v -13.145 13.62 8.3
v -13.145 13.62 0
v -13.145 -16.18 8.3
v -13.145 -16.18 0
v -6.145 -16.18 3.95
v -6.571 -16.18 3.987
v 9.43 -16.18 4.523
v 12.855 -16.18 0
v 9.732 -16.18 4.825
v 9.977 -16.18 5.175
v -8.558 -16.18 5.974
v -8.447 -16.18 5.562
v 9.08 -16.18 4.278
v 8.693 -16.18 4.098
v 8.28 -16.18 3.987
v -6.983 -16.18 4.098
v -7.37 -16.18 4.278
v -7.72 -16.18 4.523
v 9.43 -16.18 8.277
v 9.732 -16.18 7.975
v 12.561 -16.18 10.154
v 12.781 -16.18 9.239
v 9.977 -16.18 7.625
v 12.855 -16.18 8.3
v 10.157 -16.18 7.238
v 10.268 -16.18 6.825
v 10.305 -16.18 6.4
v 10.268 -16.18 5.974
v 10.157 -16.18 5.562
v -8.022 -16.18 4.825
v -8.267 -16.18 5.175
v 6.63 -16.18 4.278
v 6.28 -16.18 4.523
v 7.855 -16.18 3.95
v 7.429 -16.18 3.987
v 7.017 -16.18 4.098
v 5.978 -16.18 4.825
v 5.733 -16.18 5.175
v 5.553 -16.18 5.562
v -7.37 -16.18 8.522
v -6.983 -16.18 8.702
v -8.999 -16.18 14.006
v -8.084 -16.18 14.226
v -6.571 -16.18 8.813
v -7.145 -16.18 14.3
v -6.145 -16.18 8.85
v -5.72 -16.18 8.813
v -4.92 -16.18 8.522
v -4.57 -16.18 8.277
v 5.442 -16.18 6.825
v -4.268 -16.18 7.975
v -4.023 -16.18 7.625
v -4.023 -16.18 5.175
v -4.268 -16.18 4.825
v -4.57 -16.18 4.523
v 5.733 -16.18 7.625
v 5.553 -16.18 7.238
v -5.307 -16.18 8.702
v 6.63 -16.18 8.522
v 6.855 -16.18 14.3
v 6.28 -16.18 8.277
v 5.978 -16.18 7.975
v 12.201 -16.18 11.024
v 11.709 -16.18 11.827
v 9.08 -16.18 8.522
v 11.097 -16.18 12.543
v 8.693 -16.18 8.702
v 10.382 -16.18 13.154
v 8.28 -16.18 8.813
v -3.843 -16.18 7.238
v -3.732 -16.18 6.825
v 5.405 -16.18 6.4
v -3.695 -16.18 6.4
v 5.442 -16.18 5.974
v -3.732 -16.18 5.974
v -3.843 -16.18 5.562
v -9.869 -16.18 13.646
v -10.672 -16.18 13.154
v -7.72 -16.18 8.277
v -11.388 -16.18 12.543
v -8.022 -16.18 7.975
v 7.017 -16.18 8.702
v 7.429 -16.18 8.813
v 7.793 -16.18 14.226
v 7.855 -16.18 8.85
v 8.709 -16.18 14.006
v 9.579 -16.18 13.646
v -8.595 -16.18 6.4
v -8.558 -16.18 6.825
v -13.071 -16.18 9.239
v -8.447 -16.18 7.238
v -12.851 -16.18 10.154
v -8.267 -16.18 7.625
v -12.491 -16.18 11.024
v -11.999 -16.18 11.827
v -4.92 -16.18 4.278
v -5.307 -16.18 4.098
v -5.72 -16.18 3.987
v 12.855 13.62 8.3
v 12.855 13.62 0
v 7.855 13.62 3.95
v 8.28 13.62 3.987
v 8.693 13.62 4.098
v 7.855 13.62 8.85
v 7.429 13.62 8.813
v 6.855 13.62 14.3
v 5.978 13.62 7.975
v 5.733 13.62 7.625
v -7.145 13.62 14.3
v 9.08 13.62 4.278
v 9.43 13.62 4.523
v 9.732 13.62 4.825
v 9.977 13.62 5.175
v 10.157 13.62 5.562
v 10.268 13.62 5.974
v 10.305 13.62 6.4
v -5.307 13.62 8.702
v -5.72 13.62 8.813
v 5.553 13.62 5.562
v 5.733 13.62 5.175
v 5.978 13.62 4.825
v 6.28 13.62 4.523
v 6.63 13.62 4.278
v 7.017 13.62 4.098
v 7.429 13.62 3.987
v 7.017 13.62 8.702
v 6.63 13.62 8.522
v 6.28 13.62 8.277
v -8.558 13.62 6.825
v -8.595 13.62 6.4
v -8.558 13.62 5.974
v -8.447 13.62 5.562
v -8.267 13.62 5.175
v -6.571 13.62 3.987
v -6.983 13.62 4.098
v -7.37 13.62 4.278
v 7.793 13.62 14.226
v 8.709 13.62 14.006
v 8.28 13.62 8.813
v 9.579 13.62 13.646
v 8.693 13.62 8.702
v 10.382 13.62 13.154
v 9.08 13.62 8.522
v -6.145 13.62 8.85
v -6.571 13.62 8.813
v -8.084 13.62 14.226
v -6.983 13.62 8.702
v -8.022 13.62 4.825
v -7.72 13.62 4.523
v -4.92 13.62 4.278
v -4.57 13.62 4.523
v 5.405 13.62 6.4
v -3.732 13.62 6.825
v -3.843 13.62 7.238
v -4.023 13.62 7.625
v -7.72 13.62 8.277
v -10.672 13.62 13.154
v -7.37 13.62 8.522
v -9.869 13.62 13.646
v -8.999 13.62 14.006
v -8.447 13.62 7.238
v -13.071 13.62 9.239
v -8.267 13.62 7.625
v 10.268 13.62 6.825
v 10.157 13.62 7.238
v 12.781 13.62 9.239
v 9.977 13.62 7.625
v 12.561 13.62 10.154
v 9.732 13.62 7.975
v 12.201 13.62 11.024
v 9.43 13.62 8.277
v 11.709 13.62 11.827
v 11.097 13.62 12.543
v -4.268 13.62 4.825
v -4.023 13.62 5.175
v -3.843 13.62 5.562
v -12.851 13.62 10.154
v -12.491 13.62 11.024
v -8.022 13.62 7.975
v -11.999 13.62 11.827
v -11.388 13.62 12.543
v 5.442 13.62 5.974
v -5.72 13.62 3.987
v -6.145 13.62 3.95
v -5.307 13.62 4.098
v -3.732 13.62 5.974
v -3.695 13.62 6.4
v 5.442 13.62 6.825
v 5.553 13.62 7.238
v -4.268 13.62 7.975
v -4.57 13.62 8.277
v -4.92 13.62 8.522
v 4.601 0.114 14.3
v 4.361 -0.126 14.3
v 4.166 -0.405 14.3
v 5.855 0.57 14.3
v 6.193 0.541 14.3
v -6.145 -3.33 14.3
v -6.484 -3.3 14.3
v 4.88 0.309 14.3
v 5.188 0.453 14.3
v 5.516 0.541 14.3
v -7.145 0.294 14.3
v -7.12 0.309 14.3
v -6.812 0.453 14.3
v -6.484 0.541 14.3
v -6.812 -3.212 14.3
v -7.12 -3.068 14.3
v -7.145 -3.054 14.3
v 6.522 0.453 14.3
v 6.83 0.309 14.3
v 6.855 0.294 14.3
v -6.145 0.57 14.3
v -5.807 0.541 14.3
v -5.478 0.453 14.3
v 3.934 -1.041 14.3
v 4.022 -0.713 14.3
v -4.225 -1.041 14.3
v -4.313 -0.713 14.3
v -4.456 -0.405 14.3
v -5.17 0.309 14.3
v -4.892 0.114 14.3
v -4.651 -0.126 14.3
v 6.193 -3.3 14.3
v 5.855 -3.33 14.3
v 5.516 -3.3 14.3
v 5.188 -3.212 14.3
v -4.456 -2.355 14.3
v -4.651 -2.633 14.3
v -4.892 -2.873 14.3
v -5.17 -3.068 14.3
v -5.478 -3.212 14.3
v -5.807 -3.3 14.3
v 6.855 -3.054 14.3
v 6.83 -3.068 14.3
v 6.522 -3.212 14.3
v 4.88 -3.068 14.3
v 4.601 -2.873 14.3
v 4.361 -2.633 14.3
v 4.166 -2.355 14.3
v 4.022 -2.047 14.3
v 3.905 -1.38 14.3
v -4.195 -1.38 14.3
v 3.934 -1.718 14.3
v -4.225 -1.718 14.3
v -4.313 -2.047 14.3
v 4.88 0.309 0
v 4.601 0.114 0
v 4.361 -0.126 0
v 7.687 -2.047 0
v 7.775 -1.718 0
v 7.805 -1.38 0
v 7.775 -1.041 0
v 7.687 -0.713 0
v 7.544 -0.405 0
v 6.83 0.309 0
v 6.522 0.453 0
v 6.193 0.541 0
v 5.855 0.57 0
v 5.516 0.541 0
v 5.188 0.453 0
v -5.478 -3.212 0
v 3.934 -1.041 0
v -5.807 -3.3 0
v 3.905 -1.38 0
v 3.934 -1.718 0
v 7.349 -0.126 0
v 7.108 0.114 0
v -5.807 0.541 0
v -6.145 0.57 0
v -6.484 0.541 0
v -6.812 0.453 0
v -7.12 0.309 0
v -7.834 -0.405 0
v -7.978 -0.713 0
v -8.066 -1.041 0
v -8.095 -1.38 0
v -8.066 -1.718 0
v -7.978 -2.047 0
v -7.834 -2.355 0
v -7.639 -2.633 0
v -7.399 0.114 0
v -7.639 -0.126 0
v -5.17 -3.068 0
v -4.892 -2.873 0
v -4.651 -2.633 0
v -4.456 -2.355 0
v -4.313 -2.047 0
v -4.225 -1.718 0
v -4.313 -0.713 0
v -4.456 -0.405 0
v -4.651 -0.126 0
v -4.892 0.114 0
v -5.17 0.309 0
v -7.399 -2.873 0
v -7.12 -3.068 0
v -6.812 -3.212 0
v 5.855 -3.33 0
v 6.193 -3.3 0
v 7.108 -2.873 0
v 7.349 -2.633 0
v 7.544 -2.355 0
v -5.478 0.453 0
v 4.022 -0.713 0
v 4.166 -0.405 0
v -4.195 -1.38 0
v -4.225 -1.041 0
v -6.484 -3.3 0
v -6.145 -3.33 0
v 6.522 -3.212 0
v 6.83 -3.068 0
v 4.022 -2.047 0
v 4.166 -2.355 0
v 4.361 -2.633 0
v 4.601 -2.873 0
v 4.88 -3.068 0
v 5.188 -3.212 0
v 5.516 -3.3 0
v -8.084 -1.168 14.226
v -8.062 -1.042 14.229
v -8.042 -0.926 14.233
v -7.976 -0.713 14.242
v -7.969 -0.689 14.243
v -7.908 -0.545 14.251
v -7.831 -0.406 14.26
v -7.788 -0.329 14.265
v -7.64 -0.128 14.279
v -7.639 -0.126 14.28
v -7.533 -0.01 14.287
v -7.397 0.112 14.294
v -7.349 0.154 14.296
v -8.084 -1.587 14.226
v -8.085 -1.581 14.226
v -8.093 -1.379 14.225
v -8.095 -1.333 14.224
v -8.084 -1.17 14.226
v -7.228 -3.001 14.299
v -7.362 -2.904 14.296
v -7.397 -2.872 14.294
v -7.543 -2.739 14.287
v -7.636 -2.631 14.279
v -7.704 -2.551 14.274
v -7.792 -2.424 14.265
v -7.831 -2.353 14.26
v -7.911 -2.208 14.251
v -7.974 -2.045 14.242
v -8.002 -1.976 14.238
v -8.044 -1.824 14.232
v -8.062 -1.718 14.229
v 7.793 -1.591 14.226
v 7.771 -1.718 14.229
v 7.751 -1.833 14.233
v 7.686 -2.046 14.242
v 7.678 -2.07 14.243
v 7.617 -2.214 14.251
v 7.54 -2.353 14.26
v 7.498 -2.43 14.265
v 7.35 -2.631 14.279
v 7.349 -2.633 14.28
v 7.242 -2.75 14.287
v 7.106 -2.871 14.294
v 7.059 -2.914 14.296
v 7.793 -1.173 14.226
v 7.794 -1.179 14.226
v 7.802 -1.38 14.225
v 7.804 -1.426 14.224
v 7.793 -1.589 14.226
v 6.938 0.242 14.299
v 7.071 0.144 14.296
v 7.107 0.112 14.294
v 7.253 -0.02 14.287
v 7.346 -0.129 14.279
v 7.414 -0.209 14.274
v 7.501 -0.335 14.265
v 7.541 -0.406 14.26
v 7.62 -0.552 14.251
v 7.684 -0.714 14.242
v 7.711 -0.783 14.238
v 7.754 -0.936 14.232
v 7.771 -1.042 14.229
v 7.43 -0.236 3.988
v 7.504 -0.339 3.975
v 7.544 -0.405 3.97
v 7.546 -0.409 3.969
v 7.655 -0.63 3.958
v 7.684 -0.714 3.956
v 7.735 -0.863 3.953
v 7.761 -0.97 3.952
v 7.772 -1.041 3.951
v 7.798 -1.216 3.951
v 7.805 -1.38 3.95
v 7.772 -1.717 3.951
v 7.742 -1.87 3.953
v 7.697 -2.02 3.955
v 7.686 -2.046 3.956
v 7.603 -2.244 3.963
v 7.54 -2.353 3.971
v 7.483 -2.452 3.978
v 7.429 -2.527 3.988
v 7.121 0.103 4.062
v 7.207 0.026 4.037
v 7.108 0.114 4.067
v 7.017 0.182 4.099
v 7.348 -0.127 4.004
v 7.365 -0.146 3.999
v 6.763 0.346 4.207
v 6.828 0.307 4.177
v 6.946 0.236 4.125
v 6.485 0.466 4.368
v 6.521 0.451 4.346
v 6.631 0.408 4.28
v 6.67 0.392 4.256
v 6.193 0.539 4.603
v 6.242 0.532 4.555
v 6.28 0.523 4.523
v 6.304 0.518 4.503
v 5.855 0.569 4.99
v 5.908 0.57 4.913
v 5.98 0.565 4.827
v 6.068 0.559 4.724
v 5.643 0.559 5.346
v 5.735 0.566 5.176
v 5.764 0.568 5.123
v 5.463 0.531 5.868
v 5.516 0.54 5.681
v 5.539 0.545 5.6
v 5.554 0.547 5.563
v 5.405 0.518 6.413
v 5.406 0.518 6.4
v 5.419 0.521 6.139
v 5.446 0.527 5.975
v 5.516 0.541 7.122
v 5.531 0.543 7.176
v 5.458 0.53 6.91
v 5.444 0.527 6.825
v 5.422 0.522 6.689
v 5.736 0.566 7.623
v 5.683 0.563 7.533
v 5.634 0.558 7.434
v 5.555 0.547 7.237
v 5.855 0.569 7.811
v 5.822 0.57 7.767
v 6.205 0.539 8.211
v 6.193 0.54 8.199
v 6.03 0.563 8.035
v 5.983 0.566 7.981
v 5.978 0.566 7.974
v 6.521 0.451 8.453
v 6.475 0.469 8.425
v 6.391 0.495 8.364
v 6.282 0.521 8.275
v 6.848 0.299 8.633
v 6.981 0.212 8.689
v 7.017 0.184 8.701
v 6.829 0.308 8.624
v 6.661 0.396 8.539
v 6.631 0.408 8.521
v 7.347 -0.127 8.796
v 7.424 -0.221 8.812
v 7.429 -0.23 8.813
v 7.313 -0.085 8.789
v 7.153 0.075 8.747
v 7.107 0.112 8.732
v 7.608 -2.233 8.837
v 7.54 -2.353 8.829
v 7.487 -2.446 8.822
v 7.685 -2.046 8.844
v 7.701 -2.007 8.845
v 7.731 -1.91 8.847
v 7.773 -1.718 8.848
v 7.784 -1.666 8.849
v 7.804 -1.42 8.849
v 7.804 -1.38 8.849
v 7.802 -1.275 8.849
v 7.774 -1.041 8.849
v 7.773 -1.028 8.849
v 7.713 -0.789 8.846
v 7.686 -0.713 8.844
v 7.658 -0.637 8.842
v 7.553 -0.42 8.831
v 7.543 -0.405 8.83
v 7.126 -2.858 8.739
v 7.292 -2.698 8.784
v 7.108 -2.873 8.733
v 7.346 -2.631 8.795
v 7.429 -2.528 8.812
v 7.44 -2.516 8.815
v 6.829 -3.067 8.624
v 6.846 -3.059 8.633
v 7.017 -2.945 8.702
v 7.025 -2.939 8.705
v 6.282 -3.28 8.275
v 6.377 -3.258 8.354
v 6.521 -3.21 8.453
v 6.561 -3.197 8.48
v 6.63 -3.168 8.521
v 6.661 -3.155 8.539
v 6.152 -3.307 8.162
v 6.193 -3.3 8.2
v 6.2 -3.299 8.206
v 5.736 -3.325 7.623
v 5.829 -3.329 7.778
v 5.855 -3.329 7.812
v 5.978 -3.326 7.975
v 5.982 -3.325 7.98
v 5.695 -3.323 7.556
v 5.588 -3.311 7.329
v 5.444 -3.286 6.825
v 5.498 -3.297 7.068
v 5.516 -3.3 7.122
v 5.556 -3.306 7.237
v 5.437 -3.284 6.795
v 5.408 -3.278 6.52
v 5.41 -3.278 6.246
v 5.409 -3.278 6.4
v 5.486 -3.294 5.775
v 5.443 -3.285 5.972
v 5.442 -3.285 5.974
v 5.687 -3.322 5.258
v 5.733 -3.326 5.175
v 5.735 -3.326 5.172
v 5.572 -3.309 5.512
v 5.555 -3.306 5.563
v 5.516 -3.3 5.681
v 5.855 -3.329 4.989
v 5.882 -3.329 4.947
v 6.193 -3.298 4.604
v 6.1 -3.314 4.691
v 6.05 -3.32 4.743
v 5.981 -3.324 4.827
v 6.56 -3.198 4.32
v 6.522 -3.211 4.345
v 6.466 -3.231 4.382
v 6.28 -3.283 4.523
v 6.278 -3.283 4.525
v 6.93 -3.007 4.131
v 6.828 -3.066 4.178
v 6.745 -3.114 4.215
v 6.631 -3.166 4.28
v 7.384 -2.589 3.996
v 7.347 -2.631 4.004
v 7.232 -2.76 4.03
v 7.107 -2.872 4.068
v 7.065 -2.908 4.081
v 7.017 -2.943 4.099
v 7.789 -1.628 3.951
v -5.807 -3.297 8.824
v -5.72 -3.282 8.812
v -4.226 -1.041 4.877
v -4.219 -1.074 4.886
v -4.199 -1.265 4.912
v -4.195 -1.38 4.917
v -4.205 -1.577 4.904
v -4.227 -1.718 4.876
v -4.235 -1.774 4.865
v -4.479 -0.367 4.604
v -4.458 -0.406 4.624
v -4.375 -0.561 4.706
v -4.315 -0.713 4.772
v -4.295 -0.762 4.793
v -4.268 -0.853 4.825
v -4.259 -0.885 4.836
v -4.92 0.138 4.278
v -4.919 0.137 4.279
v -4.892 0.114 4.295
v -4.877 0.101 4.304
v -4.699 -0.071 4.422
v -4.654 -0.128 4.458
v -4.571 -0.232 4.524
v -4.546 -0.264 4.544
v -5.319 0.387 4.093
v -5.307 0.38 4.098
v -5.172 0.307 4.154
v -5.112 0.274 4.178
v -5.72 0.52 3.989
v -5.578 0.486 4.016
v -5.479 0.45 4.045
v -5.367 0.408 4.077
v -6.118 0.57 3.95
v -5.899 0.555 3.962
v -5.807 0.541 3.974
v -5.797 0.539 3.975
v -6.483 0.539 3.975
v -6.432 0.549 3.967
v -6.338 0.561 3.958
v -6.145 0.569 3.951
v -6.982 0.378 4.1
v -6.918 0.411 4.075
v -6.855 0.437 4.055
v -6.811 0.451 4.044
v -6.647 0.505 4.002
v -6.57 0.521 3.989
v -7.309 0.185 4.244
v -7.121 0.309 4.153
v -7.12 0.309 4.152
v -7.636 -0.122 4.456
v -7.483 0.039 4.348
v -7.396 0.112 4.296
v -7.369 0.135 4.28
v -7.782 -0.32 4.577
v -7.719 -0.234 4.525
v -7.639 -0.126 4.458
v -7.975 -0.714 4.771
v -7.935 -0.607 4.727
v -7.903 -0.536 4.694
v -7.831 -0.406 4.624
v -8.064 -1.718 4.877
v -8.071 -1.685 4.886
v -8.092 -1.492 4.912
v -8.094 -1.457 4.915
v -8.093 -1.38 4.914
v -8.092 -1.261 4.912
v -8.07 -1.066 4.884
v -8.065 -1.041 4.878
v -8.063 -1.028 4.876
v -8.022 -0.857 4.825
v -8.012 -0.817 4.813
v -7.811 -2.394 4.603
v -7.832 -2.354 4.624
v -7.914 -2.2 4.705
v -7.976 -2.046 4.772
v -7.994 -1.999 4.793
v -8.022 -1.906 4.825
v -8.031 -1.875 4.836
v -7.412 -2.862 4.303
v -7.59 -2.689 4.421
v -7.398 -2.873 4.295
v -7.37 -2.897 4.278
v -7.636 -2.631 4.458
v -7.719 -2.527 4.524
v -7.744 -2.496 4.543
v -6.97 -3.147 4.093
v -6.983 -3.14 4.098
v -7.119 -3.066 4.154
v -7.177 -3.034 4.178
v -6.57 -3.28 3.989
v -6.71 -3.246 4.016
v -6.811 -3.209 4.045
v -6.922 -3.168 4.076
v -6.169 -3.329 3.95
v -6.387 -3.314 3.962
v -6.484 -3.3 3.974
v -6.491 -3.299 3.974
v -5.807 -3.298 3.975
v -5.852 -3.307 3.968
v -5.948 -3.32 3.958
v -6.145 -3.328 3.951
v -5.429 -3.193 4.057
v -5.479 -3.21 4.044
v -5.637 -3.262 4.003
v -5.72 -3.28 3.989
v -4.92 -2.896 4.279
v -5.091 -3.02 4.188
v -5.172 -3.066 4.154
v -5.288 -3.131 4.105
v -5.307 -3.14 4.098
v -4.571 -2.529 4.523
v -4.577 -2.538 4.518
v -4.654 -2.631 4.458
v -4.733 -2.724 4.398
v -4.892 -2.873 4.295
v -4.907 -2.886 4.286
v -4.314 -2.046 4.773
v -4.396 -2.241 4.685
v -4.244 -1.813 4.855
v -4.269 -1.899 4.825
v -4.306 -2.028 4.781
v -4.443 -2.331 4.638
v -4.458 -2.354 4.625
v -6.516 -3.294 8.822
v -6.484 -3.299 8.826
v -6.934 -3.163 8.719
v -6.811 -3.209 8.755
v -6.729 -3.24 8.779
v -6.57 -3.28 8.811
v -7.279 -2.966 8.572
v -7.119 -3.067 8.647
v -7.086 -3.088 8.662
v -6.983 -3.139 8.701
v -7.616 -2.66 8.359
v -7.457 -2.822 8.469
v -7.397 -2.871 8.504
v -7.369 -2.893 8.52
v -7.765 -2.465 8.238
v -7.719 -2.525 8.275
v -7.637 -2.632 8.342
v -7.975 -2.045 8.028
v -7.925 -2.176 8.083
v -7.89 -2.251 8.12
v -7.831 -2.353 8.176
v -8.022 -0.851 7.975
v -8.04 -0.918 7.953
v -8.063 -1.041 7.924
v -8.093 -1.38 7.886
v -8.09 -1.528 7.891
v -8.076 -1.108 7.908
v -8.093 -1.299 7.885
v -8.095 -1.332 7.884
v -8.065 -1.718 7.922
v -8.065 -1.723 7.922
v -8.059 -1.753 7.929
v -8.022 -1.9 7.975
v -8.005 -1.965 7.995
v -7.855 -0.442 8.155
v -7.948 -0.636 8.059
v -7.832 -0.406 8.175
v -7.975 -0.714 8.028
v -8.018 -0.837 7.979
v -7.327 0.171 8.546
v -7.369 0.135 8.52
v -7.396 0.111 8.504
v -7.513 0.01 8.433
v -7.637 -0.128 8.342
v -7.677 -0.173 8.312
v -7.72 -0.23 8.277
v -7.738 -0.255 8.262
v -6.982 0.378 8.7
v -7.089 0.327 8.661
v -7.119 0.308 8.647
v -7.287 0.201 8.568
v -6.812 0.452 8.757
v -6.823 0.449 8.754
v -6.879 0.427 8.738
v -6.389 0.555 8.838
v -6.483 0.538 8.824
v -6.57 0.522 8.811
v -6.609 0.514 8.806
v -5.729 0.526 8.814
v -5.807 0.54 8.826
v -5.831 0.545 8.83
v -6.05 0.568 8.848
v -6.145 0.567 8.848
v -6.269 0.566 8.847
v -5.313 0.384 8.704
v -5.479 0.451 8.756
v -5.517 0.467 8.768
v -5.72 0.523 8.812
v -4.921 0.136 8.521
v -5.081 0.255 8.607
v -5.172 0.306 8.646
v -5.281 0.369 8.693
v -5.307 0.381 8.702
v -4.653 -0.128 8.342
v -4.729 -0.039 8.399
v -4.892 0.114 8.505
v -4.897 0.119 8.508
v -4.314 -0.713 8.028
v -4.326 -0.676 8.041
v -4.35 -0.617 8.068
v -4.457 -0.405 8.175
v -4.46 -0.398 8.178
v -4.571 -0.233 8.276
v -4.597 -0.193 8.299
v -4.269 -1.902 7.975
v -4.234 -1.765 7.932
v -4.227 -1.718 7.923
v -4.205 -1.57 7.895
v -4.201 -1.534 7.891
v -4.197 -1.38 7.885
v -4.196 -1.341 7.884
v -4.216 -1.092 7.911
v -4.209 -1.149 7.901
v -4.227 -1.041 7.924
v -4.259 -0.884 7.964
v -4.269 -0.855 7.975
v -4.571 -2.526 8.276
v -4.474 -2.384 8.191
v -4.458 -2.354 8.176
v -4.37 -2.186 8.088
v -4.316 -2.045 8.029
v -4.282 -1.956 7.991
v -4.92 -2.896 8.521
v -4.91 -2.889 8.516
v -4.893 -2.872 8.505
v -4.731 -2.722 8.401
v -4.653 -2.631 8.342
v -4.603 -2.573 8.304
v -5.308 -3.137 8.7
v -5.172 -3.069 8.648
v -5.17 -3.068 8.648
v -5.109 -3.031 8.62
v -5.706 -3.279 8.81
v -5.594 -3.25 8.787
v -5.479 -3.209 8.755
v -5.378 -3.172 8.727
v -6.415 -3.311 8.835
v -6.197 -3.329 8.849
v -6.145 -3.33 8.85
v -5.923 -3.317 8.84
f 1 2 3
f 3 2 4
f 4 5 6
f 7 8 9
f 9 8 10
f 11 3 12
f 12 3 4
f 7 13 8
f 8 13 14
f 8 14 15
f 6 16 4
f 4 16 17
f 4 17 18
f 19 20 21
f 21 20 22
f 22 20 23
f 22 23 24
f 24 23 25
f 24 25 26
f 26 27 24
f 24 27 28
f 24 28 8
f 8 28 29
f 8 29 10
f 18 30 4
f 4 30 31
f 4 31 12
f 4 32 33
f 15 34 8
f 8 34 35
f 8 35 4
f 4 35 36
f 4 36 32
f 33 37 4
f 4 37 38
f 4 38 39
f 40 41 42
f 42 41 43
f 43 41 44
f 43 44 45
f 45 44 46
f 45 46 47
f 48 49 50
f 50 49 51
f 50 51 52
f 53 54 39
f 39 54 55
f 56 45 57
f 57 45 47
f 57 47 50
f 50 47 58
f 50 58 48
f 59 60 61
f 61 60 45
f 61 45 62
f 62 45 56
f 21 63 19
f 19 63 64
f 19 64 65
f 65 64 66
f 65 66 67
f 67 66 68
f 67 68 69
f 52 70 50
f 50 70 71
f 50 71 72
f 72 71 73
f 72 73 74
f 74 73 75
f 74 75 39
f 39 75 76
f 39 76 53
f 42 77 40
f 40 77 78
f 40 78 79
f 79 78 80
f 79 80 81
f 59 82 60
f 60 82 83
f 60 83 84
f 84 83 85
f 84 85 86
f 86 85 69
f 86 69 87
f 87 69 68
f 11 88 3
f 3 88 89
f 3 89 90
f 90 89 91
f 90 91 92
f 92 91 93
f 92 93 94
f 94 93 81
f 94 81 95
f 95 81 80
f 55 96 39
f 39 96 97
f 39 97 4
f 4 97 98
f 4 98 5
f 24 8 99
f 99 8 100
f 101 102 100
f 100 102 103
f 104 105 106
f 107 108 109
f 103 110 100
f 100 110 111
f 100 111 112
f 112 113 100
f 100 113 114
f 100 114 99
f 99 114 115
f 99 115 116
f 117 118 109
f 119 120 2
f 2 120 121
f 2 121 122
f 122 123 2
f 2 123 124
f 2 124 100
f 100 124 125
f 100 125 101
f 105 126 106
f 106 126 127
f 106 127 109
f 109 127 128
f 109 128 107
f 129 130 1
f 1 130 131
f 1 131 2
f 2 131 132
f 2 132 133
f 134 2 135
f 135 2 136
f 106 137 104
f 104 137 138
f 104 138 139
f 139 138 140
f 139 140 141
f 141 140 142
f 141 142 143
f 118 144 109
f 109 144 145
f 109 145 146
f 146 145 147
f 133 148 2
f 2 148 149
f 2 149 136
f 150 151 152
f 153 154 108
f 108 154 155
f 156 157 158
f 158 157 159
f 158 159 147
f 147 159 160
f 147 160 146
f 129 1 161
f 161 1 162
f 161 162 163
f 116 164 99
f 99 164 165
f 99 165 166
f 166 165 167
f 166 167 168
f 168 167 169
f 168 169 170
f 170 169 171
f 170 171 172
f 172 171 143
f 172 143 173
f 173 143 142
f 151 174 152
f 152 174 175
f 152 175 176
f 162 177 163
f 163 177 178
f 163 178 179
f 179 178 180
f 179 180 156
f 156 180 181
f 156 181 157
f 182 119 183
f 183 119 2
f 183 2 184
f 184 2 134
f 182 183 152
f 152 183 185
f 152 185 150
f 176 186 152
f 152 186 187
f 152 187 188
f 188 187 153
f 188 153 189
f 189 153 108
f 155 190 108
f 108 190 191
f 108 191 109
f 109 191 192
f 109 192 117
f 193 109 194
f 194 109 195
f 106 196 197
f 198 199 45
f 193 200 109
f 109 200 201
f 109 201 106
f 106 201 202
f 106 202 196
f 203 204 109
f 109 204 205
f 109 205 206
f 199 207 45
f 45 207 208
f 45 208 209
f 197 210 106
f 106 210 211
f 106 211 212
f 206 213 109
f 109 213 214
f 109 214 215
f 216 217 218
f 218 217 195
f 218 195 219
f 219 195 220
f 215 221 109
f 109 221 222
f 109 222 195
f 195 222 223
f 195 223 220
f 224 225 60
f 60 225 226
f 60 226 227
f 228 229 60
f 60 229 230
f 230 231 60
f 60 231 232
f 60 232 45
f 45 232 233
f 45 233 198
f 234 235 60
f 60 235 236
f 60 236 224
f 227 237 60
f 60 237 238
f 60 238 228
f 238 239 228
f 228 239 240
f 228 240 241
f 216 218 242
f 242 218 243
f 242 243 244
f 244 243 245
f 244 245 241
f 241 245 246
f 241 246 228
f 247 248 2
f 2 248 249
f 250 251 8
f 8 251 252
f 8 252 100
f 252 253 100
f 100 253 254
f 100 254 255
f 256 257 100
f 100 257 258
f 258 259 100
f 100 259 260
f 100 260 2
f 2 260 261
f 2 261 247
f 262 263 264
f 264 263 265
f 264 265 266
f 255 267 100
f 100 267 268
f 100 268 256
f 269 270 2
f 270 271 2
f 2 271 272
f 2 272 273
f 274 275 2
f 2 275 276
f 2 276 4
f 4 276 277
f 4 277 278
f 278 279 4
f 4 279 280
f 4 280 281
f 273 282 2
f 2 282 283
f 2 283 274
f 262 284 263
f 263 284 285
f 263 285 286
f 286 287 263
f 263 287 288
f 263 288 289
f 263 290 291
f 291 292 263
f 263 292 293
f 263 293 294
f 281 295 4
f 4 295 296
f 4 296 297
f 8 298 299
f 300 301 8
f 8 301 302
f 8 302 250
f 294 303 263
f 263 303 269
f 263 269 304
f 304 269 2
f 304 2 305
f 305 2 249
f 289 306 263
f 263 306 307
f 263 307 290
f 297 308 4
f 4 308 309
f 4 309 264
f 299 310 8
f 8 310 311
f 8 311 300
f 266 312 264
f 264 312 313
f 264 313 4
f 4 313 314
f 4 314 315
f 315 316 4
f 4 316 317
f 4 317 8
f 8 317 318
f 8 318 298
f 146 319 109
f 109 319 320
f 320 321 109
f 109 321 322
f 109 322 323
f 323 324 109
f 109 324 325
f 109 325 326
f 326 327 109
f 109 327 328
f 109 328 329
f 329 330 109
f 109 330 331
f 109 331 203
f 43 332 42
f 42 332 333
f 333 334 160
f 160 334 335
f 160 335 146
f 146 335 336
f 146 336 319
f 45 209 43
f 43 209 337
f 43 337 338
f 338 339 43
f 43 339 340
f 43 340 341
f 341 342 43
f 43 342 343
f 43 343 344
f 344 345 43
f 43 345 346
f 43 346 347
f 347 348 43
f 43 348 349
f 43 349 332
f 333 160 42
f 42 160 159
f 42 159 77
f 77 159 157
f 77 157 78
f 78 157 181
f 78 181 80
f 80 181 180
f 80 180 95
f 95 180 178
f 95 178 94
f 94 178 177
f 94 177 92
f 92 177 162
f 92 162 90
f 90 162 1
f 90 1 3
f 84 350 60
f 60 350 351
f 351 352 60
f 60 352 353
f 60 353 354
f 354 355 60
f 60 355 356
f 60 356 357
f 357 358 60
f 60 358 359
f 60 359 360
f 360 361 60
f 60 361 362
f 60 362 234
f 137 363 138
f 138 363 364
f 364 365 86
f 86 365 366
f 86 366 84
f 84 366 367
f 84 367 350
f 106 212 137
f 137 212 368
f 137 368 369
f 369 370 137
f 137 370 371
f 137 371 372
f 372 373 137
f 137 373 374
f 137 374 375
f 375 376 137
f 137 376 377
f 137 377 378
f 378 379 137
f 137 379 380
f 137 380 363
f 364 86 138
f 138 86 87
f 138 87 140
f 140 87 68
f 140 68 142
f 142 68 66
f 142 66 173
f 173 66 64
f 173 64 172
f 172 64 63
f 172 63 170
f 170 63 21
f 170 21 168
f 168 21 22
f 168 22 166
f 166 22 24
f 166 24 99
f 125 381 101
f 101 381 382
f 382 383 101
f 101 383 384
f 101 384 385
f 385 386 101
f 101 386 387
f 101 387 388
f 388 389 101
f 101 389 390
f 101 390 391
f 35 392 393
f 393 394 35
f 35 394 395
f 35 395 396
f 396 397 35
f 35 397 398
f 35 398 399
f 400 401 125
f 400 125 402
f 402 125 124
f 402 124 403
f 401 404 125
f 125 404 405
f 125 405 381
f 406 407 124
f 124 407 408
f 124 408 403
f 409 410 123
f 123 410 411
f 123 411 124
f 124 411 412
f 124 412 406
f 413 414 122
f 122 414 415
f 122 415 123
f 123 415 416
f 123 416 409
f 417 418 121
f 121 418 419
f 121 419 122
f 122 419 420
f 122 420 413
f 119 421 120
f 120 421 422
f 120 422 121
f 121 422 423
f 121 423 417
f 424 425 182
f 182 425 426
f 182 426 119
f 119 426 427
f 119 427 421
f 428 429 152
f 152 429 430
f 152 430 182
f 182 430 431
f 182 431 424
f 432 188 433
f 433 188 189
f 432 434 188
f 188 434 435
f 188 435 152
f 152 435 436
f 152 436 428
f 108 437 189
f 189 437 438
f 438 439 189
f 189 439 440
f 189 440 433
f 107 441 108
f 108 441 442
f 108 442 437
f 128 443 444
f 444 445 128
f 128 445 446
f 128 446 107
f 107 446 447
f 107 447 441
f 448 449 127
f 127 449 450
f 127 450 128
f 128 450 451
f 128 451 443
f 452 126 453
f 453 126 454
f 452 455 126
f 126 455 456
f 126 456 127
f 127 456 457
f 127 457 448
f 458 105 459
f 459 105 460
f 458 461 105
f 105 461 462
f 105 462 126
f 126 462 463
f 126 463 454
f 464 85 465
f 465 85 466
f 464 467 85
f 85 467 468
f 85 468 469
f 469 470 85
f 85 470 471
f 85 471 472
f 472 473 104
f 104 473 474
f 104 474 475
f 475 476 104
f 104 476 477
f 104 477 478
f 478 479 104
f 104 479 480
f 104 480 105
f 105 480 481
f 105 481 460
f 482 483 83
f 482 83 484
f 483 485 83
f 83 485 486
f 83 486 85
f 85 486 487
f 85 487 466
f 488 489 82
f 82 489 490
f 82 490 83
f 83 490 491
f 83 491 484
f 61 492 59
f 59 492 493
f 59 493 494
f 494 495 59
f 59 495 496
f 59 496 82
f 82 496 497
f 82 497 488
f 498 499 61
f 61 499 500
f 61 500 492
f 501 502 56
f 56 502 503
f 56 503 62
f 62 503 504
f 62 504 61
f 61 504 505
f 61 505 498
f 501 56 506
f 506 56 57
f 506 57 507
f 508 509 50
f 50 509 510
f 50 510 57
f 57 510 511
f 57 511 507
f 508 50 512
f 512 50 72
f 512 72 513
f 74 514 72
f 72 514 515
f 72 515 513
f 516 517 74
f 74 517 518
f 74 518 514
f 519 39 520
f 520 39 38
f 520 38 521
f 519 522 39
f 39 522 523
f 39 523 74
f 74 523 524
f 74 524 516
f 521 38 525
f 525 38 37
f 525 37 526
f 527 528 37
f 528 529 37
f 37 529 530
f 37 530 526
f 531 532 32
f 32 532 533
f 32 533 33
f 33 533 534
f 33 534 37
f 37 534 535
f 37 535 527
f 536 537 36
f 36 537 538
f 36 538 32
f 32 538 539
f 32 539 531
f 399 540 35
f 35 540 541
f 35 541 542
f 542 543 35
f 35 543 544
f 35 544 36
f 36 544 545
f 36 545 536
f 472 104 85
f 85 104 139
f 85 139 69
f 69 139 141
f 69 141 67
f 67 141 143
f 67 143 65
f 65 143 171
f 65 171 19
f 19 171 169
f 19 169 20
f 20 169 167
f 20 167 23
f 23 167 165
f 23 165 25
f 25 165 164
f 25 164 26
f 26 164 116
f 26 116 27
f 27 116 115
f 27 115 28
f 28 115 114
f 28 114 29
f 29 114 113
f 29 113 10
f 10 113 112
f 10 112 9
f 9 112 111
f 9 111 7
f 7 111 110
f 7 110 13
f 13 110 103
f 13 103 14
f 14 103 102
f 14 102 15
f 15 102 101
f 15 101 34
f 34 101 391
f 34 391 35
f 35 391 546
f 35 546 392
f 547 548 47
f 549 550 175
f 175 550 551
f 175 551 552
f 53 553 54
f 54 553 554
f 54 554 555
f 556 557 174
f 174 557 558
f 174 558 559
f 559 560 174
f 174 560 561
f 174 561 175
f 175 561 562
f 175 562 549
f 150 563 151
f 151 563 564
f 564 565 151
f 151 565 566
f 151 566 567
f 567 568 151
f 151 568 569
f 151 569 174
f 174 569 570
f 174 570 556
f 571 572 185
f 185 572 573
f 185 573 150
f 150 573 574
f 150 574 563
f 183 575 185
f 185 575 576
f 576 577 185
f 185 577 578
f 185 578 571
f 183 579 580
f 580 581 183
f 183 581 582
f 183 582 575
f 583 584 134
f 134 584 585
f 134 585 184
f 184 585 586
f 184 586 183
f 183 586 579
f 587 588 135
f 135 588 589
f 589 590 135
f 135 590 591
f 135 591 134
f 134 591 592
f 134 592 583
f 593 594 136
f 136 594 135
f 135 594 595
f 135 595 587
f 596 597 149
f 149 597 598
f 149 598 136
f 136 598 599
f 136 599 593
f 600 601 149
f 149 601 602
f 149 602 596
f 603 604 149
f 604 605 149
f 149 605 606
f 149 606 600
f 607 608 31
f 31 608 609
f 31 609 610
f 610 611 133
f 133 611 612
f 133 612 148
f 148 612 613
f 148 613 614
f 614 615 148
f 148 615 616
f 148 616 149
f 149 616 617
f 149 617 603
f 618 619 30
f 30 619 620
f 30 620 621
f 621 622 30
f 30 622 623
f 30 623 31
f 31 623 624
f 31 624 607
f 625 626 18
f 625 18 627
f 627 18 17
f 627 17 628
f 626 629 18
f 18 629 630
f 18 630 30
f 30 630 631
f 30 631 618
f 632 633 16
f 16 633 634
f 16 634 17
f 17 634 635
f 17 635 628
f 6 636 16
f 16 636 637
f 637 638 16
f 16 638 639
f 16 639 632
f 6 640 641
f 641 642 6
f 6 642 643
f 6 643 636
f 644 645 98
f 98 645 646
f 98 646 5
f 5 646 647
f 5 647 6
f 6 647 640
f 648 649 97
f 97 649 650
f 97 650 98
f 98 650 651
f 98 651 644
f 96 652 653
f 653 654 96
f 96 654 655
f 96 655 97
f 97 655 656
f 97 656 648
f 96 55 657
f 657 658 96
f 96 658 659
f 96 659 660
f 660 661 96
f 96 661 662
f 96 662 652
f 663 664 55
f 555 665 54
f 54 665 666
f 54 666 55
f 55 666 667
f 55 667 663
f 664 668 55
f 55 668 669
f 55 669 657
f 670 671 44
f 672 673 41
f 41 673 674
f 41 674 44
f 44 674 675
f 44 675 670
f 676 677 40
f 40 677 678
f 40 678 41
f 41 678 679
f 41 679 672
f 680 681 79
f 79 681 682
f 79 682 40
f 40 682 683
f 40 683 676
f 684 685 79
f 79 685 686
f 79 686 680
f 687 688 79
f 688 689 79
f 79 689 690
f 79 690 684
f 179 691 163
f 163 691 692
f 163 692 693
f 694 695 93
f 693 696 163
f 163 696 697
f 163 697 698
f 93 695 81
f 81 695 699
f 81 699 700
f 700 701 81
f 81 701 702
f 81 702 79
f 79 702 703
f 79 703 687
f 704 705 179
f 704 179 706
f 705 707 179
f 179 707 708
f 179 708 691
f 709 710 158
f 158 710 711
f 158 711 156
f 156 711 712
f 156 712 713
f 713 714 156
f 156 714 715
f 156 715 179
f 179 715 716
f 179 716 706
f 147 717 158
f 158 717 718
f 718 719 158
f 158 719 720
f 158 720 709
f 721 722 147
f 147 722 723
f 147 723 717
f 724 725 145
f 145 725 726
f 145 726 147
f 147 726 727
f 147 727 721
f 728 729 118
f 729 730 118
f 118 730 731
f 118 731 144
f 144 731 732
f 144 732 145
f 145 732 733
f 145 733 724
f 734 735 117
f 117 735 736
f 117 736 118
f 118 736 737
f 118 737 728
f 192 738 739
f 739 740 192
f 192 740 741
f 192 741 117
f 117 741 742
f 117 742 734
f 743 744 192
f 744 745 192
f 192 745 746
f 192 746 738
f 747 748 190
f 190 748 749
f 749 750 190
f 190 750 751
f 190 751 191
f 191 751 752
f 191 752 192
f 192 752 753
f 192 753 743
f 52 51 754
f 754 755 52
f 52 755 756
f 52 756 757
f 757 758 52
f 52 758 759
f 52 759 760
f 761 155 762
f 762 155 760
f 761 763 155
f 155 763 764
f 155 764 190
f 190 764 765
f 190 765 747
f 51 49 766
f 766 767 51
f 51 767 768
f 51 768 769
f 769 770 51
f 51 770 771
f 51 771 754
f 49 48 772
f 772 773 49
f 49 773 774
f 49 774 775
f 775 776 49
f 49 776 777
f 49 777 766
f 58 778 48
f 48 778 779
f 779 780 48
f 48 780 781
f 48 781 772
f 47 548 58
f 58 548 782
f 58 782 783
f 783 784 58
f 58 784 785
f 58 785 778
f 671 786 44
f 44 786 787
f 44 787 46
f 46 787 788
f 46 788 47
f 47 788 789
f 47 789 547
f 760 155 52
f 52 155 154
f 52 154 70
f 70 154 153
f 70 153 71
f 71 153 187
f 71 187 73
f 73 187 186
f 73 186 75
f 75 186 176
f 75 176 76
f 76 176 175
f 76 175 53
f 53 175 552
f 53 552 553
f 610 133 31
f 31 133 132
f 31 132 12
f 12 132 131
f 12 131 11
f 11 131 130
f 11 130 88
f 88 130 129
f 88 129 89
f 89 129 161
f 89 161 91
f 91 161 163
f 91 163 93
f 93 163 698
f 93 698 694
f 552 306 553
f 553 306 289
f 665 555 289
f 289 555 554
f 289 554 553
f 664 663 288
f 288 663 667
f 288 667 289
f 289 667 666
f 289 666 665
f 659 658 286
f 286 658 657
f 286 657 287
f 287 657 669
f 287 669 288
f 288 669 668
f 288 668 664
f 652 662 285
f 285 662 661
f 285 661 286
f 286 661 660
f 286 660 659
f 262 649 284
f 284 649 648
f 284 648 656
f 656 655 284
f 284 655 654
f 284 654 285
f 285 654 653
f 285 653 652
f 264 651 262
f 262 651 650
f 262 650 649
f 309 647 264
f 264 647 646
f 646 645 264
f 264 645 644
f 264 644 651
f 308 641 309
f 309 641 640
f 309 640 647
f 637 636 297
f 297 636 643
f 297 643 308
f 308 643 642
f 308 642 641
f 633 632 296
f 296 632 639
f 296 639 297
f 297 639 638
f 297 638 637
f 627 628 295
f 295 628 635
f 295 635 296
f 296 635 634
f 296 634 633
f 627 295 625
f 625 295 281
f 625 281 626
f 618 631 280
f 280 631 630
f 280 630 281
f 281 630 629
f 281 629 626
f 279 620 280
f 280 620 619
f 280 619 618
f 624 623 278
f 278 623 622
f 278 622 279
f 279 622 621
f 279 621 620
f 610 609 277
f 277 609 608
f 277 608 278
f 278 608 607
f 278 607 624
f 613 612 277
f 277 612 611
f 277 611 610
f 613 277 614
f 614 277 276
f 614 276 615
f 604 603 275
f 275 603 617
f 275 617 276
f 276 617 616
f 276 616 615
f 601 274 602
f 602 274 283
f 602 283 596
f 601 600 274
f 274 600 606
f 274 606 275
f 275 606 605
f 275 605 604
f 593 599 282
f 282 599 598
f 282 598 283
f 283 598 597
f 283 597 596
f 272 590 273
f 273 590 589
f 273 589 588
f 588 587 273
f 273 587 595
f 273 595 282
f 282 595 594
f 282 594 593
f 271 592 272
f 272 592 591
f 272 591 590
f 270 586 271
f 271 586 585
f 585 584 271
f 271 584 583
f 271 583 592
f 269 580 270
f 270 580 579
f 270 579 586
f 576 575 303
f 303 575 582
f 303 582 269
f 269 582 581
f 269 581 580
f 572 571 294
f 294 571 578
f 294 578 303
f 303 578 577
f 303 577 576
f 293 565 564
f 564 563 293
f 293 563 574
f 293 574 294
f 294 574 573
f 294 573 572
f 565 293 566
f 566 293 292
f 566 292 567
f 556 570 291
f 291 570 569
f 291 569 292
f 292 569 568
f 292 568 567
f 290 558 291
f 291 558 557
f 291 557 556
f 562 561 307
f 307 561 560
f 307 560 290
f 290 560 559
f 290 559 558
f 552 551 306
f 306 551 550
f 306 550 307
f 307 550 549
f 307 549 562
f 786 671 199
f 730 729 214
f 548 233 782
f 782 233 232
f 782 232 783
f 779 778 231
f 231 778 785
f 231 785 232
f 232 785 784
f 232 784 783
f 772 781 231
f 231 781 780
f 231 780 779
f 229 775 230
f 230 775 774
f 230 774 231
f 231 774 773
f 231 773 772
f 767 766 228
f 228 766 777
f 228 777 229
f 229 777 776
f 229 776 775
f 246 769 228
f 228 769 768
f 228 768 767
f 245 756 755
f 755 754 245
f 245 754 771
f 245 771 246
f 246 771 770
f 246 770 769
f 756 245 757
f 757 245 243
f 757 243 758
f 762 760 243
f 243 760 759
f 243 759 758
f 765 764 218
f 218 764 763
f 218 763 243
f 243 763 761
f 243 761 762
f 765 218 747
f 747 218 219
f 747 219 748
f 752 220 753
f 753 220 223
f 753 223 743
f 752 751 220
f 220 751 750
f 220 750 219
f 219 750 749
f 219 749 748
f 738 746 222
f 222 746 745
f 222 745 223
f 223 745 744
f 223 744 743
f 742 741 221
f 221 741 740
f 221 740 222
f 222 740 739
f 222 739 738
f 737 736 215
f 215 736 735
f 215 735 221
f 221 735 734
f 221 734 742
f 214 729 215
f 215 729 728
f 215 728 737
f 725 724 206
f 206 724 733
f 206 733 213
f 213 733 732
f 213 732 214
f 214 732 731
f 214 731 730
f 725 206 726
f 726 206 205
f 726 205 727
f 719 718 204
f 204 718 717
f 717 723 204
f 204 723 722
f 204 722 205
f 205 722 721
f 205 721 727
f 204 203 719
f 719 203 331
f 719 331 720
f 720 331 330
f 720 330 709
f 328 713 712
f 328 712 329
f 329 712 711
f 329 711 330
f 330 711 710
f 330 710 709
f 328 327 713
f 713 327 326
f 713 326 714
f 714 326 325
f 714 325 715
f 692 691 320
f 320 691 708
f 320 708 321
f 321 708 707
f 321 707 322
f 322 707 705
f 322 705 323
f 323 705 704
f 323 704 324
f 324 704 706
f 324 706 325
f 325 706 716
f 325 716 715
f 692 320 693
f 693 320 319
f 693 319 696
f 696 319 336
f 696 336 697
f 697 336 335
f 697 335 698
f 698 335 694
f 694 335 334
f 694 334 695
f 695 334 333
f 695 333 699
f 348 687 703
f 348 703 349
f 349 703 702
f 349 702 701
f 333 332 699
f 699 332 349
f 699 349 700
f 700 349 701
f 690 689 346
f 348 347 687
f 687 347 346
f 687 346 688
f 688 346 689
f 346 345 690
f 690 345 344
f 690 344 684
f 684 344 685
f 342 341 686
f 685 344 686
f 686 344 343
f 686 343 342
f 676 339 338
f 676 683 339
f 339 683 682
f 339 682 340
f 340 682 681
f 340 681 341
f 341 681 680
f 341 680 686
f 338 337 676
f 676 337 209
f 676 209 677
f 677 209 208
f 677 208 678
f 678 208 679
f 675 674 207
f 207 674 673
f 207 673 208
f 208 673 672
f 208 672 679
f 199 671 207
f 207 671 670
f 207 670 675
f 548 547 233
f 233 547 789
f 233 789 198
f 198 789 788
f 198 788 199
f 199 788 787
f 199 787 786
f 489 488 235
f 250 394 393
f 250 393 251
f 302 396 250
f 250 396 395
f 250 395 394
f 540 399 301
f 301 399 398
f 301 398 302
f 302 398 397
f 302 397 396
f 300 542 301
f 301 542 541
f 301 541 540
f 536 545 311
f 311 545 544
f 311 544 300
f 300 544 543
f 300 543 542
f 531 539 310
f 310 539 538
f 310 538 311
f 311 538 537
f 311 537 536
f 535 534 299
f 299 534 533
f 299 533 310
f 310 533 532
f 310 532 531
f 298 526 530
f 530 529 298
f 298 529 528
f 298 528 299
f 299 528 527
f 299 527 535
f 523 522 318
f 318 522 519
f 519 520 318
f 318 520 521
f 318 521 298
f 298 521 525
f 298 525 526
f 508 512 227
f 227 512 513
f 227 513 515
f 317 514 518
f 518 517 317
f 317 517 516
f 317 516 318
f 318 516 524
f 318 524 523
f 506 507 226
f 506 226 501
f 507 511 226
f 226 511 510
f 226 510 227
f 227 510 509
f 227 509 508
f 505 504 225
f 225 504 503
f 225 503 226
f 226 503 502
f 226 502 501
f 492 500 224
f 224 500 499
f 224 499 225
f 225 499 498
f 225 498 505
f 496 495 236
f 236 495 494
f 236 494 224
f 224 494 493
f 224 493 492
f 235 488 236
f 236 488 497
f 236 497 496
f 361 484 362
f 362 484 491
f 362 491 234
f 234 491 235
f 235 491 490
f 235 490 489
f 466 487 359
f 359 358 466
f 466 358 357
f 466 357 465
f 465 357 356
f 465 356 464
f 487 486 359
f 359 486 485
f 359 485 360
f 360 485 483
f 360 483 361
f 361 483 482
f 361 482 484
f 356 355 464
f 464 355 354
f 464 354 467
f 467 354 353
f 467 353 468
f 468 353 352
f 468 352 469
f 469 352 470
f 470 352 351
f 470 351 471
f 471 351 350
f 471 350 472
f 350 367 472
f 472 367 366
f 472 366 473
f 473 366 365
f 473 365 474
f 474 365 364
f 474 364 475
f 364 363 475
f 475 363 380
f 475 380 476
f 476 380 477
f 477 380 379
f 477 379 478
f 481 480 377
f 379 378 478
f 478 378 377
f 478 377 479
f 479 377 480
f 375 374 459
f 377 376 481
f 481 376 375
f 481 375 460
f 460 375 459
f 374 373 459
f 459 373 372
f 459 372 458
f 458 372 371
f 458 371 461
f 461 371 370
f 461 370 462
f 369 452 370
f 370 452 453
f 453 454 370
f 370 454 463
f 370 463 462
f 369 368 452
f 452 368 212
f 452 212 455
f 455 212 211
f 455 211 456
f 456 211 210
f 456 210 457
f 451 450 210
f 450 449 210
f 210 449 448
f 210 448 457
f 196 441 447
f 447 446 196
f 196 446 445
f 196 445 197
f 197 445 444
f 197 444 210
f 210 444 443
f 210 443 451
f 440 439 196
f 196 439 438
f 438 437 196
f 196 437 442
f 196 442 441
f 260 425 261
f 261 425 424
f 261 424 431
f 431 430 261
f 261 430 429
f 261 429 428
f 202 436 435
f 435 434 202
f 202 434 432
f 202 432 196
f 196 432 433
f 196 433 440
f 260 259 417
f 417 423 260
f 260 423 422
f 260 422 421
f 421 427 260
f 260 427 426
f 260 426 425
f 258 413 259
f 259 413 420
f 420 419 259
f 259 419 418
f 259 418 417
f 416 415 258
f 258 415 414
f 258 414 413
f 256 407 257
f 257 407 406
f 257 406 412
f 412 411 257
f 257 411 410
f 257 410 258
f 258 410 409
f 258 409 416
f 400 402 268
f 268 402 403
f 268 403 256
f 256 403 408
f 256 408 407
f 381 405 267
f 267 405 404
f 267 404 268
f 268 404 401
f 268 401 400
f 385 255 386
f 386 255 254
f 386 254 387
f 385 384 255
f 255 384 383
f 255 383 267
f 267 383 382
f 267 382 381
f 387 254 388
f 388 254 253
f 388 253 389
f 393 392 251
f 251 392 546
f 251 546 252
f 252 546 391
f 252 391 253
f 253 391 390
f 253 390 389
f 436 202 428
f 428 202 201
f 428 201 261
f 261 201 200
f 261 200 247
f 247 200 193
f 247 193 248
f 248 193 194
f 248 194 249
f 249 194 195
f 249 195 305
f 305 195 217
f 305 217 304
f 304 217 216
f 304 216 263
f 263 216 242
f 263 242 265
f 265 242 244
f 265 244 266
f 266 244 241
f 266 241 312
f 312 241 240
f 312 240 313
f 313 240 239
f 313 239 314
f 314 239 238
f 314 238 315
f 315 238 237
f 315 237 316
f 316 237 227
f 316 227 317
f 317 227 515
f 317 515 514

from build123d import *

# Parameters (mm, degrees)
SKETCH1_W          = 26
SKETCH1_H          = 29.8
EXTRUDE1_DEPTH     = 14.3
FILLET1_R          = 6
SKETCH3_R          = 2.45
CUT_EXTRUDE1_DEPTH = 30.8
SKETCH2_R          = 1.95
EXTRUDE2_DEPTH     = 15.3


with BuildPart() as part:
    # Sketch1 → Extrude1 (new body)
    with BuildSketch(Plane.XY):
        with Locations((-0.145304935, -1.279569379)):
            Rectangle(SKETCH1_W, SKETCH1_H)
    extrude(amount=EXTRUDE1_DEPTH)

    # Fillet1
    fillet1_edges = [part.edges().sort_by_distance(p)[0] for p in [
        (12.854695065, -1.279569379, 14.3),
        (-13.145304935, -1.279569379, 14.3),
    ]]
    fillet(fillet1_edges, radius=FILLET1_R)

    # Sketch3 → Cut-Extrude1 (cut, through all)
    with BuildSketch(Plane(origin=(0, 13.620430621, 0), x_dir=(-1, 0, 0), z_dir=(0, 1, 0))):
        with Locations((-7.854695065, 6.4000002)):
            Circle(SKETCH3_R)
        with Locations((6.145304935, 6.4)):
            Circle(SKETCH3_R)
    extrude(amount=-CUT_EXTRUDE1_DEPTH, mode=Mode.SUBTRACT)

    # Sketch2 → Extrude2 (cut, through all)
    with BuildSketch(Plane.XY.offset(14.3)):
        with Locations((-6.145304935, -1.379569379)):
            Circle(SKETCH2_R)
        with Locations((5.854695065, -1.379569379)):
            Circle(SKETCH2_R)
    extrude(amount=-EXTRUDE2_DEPTH, mode=Mode.SUBTRACT)


solid = part.part
